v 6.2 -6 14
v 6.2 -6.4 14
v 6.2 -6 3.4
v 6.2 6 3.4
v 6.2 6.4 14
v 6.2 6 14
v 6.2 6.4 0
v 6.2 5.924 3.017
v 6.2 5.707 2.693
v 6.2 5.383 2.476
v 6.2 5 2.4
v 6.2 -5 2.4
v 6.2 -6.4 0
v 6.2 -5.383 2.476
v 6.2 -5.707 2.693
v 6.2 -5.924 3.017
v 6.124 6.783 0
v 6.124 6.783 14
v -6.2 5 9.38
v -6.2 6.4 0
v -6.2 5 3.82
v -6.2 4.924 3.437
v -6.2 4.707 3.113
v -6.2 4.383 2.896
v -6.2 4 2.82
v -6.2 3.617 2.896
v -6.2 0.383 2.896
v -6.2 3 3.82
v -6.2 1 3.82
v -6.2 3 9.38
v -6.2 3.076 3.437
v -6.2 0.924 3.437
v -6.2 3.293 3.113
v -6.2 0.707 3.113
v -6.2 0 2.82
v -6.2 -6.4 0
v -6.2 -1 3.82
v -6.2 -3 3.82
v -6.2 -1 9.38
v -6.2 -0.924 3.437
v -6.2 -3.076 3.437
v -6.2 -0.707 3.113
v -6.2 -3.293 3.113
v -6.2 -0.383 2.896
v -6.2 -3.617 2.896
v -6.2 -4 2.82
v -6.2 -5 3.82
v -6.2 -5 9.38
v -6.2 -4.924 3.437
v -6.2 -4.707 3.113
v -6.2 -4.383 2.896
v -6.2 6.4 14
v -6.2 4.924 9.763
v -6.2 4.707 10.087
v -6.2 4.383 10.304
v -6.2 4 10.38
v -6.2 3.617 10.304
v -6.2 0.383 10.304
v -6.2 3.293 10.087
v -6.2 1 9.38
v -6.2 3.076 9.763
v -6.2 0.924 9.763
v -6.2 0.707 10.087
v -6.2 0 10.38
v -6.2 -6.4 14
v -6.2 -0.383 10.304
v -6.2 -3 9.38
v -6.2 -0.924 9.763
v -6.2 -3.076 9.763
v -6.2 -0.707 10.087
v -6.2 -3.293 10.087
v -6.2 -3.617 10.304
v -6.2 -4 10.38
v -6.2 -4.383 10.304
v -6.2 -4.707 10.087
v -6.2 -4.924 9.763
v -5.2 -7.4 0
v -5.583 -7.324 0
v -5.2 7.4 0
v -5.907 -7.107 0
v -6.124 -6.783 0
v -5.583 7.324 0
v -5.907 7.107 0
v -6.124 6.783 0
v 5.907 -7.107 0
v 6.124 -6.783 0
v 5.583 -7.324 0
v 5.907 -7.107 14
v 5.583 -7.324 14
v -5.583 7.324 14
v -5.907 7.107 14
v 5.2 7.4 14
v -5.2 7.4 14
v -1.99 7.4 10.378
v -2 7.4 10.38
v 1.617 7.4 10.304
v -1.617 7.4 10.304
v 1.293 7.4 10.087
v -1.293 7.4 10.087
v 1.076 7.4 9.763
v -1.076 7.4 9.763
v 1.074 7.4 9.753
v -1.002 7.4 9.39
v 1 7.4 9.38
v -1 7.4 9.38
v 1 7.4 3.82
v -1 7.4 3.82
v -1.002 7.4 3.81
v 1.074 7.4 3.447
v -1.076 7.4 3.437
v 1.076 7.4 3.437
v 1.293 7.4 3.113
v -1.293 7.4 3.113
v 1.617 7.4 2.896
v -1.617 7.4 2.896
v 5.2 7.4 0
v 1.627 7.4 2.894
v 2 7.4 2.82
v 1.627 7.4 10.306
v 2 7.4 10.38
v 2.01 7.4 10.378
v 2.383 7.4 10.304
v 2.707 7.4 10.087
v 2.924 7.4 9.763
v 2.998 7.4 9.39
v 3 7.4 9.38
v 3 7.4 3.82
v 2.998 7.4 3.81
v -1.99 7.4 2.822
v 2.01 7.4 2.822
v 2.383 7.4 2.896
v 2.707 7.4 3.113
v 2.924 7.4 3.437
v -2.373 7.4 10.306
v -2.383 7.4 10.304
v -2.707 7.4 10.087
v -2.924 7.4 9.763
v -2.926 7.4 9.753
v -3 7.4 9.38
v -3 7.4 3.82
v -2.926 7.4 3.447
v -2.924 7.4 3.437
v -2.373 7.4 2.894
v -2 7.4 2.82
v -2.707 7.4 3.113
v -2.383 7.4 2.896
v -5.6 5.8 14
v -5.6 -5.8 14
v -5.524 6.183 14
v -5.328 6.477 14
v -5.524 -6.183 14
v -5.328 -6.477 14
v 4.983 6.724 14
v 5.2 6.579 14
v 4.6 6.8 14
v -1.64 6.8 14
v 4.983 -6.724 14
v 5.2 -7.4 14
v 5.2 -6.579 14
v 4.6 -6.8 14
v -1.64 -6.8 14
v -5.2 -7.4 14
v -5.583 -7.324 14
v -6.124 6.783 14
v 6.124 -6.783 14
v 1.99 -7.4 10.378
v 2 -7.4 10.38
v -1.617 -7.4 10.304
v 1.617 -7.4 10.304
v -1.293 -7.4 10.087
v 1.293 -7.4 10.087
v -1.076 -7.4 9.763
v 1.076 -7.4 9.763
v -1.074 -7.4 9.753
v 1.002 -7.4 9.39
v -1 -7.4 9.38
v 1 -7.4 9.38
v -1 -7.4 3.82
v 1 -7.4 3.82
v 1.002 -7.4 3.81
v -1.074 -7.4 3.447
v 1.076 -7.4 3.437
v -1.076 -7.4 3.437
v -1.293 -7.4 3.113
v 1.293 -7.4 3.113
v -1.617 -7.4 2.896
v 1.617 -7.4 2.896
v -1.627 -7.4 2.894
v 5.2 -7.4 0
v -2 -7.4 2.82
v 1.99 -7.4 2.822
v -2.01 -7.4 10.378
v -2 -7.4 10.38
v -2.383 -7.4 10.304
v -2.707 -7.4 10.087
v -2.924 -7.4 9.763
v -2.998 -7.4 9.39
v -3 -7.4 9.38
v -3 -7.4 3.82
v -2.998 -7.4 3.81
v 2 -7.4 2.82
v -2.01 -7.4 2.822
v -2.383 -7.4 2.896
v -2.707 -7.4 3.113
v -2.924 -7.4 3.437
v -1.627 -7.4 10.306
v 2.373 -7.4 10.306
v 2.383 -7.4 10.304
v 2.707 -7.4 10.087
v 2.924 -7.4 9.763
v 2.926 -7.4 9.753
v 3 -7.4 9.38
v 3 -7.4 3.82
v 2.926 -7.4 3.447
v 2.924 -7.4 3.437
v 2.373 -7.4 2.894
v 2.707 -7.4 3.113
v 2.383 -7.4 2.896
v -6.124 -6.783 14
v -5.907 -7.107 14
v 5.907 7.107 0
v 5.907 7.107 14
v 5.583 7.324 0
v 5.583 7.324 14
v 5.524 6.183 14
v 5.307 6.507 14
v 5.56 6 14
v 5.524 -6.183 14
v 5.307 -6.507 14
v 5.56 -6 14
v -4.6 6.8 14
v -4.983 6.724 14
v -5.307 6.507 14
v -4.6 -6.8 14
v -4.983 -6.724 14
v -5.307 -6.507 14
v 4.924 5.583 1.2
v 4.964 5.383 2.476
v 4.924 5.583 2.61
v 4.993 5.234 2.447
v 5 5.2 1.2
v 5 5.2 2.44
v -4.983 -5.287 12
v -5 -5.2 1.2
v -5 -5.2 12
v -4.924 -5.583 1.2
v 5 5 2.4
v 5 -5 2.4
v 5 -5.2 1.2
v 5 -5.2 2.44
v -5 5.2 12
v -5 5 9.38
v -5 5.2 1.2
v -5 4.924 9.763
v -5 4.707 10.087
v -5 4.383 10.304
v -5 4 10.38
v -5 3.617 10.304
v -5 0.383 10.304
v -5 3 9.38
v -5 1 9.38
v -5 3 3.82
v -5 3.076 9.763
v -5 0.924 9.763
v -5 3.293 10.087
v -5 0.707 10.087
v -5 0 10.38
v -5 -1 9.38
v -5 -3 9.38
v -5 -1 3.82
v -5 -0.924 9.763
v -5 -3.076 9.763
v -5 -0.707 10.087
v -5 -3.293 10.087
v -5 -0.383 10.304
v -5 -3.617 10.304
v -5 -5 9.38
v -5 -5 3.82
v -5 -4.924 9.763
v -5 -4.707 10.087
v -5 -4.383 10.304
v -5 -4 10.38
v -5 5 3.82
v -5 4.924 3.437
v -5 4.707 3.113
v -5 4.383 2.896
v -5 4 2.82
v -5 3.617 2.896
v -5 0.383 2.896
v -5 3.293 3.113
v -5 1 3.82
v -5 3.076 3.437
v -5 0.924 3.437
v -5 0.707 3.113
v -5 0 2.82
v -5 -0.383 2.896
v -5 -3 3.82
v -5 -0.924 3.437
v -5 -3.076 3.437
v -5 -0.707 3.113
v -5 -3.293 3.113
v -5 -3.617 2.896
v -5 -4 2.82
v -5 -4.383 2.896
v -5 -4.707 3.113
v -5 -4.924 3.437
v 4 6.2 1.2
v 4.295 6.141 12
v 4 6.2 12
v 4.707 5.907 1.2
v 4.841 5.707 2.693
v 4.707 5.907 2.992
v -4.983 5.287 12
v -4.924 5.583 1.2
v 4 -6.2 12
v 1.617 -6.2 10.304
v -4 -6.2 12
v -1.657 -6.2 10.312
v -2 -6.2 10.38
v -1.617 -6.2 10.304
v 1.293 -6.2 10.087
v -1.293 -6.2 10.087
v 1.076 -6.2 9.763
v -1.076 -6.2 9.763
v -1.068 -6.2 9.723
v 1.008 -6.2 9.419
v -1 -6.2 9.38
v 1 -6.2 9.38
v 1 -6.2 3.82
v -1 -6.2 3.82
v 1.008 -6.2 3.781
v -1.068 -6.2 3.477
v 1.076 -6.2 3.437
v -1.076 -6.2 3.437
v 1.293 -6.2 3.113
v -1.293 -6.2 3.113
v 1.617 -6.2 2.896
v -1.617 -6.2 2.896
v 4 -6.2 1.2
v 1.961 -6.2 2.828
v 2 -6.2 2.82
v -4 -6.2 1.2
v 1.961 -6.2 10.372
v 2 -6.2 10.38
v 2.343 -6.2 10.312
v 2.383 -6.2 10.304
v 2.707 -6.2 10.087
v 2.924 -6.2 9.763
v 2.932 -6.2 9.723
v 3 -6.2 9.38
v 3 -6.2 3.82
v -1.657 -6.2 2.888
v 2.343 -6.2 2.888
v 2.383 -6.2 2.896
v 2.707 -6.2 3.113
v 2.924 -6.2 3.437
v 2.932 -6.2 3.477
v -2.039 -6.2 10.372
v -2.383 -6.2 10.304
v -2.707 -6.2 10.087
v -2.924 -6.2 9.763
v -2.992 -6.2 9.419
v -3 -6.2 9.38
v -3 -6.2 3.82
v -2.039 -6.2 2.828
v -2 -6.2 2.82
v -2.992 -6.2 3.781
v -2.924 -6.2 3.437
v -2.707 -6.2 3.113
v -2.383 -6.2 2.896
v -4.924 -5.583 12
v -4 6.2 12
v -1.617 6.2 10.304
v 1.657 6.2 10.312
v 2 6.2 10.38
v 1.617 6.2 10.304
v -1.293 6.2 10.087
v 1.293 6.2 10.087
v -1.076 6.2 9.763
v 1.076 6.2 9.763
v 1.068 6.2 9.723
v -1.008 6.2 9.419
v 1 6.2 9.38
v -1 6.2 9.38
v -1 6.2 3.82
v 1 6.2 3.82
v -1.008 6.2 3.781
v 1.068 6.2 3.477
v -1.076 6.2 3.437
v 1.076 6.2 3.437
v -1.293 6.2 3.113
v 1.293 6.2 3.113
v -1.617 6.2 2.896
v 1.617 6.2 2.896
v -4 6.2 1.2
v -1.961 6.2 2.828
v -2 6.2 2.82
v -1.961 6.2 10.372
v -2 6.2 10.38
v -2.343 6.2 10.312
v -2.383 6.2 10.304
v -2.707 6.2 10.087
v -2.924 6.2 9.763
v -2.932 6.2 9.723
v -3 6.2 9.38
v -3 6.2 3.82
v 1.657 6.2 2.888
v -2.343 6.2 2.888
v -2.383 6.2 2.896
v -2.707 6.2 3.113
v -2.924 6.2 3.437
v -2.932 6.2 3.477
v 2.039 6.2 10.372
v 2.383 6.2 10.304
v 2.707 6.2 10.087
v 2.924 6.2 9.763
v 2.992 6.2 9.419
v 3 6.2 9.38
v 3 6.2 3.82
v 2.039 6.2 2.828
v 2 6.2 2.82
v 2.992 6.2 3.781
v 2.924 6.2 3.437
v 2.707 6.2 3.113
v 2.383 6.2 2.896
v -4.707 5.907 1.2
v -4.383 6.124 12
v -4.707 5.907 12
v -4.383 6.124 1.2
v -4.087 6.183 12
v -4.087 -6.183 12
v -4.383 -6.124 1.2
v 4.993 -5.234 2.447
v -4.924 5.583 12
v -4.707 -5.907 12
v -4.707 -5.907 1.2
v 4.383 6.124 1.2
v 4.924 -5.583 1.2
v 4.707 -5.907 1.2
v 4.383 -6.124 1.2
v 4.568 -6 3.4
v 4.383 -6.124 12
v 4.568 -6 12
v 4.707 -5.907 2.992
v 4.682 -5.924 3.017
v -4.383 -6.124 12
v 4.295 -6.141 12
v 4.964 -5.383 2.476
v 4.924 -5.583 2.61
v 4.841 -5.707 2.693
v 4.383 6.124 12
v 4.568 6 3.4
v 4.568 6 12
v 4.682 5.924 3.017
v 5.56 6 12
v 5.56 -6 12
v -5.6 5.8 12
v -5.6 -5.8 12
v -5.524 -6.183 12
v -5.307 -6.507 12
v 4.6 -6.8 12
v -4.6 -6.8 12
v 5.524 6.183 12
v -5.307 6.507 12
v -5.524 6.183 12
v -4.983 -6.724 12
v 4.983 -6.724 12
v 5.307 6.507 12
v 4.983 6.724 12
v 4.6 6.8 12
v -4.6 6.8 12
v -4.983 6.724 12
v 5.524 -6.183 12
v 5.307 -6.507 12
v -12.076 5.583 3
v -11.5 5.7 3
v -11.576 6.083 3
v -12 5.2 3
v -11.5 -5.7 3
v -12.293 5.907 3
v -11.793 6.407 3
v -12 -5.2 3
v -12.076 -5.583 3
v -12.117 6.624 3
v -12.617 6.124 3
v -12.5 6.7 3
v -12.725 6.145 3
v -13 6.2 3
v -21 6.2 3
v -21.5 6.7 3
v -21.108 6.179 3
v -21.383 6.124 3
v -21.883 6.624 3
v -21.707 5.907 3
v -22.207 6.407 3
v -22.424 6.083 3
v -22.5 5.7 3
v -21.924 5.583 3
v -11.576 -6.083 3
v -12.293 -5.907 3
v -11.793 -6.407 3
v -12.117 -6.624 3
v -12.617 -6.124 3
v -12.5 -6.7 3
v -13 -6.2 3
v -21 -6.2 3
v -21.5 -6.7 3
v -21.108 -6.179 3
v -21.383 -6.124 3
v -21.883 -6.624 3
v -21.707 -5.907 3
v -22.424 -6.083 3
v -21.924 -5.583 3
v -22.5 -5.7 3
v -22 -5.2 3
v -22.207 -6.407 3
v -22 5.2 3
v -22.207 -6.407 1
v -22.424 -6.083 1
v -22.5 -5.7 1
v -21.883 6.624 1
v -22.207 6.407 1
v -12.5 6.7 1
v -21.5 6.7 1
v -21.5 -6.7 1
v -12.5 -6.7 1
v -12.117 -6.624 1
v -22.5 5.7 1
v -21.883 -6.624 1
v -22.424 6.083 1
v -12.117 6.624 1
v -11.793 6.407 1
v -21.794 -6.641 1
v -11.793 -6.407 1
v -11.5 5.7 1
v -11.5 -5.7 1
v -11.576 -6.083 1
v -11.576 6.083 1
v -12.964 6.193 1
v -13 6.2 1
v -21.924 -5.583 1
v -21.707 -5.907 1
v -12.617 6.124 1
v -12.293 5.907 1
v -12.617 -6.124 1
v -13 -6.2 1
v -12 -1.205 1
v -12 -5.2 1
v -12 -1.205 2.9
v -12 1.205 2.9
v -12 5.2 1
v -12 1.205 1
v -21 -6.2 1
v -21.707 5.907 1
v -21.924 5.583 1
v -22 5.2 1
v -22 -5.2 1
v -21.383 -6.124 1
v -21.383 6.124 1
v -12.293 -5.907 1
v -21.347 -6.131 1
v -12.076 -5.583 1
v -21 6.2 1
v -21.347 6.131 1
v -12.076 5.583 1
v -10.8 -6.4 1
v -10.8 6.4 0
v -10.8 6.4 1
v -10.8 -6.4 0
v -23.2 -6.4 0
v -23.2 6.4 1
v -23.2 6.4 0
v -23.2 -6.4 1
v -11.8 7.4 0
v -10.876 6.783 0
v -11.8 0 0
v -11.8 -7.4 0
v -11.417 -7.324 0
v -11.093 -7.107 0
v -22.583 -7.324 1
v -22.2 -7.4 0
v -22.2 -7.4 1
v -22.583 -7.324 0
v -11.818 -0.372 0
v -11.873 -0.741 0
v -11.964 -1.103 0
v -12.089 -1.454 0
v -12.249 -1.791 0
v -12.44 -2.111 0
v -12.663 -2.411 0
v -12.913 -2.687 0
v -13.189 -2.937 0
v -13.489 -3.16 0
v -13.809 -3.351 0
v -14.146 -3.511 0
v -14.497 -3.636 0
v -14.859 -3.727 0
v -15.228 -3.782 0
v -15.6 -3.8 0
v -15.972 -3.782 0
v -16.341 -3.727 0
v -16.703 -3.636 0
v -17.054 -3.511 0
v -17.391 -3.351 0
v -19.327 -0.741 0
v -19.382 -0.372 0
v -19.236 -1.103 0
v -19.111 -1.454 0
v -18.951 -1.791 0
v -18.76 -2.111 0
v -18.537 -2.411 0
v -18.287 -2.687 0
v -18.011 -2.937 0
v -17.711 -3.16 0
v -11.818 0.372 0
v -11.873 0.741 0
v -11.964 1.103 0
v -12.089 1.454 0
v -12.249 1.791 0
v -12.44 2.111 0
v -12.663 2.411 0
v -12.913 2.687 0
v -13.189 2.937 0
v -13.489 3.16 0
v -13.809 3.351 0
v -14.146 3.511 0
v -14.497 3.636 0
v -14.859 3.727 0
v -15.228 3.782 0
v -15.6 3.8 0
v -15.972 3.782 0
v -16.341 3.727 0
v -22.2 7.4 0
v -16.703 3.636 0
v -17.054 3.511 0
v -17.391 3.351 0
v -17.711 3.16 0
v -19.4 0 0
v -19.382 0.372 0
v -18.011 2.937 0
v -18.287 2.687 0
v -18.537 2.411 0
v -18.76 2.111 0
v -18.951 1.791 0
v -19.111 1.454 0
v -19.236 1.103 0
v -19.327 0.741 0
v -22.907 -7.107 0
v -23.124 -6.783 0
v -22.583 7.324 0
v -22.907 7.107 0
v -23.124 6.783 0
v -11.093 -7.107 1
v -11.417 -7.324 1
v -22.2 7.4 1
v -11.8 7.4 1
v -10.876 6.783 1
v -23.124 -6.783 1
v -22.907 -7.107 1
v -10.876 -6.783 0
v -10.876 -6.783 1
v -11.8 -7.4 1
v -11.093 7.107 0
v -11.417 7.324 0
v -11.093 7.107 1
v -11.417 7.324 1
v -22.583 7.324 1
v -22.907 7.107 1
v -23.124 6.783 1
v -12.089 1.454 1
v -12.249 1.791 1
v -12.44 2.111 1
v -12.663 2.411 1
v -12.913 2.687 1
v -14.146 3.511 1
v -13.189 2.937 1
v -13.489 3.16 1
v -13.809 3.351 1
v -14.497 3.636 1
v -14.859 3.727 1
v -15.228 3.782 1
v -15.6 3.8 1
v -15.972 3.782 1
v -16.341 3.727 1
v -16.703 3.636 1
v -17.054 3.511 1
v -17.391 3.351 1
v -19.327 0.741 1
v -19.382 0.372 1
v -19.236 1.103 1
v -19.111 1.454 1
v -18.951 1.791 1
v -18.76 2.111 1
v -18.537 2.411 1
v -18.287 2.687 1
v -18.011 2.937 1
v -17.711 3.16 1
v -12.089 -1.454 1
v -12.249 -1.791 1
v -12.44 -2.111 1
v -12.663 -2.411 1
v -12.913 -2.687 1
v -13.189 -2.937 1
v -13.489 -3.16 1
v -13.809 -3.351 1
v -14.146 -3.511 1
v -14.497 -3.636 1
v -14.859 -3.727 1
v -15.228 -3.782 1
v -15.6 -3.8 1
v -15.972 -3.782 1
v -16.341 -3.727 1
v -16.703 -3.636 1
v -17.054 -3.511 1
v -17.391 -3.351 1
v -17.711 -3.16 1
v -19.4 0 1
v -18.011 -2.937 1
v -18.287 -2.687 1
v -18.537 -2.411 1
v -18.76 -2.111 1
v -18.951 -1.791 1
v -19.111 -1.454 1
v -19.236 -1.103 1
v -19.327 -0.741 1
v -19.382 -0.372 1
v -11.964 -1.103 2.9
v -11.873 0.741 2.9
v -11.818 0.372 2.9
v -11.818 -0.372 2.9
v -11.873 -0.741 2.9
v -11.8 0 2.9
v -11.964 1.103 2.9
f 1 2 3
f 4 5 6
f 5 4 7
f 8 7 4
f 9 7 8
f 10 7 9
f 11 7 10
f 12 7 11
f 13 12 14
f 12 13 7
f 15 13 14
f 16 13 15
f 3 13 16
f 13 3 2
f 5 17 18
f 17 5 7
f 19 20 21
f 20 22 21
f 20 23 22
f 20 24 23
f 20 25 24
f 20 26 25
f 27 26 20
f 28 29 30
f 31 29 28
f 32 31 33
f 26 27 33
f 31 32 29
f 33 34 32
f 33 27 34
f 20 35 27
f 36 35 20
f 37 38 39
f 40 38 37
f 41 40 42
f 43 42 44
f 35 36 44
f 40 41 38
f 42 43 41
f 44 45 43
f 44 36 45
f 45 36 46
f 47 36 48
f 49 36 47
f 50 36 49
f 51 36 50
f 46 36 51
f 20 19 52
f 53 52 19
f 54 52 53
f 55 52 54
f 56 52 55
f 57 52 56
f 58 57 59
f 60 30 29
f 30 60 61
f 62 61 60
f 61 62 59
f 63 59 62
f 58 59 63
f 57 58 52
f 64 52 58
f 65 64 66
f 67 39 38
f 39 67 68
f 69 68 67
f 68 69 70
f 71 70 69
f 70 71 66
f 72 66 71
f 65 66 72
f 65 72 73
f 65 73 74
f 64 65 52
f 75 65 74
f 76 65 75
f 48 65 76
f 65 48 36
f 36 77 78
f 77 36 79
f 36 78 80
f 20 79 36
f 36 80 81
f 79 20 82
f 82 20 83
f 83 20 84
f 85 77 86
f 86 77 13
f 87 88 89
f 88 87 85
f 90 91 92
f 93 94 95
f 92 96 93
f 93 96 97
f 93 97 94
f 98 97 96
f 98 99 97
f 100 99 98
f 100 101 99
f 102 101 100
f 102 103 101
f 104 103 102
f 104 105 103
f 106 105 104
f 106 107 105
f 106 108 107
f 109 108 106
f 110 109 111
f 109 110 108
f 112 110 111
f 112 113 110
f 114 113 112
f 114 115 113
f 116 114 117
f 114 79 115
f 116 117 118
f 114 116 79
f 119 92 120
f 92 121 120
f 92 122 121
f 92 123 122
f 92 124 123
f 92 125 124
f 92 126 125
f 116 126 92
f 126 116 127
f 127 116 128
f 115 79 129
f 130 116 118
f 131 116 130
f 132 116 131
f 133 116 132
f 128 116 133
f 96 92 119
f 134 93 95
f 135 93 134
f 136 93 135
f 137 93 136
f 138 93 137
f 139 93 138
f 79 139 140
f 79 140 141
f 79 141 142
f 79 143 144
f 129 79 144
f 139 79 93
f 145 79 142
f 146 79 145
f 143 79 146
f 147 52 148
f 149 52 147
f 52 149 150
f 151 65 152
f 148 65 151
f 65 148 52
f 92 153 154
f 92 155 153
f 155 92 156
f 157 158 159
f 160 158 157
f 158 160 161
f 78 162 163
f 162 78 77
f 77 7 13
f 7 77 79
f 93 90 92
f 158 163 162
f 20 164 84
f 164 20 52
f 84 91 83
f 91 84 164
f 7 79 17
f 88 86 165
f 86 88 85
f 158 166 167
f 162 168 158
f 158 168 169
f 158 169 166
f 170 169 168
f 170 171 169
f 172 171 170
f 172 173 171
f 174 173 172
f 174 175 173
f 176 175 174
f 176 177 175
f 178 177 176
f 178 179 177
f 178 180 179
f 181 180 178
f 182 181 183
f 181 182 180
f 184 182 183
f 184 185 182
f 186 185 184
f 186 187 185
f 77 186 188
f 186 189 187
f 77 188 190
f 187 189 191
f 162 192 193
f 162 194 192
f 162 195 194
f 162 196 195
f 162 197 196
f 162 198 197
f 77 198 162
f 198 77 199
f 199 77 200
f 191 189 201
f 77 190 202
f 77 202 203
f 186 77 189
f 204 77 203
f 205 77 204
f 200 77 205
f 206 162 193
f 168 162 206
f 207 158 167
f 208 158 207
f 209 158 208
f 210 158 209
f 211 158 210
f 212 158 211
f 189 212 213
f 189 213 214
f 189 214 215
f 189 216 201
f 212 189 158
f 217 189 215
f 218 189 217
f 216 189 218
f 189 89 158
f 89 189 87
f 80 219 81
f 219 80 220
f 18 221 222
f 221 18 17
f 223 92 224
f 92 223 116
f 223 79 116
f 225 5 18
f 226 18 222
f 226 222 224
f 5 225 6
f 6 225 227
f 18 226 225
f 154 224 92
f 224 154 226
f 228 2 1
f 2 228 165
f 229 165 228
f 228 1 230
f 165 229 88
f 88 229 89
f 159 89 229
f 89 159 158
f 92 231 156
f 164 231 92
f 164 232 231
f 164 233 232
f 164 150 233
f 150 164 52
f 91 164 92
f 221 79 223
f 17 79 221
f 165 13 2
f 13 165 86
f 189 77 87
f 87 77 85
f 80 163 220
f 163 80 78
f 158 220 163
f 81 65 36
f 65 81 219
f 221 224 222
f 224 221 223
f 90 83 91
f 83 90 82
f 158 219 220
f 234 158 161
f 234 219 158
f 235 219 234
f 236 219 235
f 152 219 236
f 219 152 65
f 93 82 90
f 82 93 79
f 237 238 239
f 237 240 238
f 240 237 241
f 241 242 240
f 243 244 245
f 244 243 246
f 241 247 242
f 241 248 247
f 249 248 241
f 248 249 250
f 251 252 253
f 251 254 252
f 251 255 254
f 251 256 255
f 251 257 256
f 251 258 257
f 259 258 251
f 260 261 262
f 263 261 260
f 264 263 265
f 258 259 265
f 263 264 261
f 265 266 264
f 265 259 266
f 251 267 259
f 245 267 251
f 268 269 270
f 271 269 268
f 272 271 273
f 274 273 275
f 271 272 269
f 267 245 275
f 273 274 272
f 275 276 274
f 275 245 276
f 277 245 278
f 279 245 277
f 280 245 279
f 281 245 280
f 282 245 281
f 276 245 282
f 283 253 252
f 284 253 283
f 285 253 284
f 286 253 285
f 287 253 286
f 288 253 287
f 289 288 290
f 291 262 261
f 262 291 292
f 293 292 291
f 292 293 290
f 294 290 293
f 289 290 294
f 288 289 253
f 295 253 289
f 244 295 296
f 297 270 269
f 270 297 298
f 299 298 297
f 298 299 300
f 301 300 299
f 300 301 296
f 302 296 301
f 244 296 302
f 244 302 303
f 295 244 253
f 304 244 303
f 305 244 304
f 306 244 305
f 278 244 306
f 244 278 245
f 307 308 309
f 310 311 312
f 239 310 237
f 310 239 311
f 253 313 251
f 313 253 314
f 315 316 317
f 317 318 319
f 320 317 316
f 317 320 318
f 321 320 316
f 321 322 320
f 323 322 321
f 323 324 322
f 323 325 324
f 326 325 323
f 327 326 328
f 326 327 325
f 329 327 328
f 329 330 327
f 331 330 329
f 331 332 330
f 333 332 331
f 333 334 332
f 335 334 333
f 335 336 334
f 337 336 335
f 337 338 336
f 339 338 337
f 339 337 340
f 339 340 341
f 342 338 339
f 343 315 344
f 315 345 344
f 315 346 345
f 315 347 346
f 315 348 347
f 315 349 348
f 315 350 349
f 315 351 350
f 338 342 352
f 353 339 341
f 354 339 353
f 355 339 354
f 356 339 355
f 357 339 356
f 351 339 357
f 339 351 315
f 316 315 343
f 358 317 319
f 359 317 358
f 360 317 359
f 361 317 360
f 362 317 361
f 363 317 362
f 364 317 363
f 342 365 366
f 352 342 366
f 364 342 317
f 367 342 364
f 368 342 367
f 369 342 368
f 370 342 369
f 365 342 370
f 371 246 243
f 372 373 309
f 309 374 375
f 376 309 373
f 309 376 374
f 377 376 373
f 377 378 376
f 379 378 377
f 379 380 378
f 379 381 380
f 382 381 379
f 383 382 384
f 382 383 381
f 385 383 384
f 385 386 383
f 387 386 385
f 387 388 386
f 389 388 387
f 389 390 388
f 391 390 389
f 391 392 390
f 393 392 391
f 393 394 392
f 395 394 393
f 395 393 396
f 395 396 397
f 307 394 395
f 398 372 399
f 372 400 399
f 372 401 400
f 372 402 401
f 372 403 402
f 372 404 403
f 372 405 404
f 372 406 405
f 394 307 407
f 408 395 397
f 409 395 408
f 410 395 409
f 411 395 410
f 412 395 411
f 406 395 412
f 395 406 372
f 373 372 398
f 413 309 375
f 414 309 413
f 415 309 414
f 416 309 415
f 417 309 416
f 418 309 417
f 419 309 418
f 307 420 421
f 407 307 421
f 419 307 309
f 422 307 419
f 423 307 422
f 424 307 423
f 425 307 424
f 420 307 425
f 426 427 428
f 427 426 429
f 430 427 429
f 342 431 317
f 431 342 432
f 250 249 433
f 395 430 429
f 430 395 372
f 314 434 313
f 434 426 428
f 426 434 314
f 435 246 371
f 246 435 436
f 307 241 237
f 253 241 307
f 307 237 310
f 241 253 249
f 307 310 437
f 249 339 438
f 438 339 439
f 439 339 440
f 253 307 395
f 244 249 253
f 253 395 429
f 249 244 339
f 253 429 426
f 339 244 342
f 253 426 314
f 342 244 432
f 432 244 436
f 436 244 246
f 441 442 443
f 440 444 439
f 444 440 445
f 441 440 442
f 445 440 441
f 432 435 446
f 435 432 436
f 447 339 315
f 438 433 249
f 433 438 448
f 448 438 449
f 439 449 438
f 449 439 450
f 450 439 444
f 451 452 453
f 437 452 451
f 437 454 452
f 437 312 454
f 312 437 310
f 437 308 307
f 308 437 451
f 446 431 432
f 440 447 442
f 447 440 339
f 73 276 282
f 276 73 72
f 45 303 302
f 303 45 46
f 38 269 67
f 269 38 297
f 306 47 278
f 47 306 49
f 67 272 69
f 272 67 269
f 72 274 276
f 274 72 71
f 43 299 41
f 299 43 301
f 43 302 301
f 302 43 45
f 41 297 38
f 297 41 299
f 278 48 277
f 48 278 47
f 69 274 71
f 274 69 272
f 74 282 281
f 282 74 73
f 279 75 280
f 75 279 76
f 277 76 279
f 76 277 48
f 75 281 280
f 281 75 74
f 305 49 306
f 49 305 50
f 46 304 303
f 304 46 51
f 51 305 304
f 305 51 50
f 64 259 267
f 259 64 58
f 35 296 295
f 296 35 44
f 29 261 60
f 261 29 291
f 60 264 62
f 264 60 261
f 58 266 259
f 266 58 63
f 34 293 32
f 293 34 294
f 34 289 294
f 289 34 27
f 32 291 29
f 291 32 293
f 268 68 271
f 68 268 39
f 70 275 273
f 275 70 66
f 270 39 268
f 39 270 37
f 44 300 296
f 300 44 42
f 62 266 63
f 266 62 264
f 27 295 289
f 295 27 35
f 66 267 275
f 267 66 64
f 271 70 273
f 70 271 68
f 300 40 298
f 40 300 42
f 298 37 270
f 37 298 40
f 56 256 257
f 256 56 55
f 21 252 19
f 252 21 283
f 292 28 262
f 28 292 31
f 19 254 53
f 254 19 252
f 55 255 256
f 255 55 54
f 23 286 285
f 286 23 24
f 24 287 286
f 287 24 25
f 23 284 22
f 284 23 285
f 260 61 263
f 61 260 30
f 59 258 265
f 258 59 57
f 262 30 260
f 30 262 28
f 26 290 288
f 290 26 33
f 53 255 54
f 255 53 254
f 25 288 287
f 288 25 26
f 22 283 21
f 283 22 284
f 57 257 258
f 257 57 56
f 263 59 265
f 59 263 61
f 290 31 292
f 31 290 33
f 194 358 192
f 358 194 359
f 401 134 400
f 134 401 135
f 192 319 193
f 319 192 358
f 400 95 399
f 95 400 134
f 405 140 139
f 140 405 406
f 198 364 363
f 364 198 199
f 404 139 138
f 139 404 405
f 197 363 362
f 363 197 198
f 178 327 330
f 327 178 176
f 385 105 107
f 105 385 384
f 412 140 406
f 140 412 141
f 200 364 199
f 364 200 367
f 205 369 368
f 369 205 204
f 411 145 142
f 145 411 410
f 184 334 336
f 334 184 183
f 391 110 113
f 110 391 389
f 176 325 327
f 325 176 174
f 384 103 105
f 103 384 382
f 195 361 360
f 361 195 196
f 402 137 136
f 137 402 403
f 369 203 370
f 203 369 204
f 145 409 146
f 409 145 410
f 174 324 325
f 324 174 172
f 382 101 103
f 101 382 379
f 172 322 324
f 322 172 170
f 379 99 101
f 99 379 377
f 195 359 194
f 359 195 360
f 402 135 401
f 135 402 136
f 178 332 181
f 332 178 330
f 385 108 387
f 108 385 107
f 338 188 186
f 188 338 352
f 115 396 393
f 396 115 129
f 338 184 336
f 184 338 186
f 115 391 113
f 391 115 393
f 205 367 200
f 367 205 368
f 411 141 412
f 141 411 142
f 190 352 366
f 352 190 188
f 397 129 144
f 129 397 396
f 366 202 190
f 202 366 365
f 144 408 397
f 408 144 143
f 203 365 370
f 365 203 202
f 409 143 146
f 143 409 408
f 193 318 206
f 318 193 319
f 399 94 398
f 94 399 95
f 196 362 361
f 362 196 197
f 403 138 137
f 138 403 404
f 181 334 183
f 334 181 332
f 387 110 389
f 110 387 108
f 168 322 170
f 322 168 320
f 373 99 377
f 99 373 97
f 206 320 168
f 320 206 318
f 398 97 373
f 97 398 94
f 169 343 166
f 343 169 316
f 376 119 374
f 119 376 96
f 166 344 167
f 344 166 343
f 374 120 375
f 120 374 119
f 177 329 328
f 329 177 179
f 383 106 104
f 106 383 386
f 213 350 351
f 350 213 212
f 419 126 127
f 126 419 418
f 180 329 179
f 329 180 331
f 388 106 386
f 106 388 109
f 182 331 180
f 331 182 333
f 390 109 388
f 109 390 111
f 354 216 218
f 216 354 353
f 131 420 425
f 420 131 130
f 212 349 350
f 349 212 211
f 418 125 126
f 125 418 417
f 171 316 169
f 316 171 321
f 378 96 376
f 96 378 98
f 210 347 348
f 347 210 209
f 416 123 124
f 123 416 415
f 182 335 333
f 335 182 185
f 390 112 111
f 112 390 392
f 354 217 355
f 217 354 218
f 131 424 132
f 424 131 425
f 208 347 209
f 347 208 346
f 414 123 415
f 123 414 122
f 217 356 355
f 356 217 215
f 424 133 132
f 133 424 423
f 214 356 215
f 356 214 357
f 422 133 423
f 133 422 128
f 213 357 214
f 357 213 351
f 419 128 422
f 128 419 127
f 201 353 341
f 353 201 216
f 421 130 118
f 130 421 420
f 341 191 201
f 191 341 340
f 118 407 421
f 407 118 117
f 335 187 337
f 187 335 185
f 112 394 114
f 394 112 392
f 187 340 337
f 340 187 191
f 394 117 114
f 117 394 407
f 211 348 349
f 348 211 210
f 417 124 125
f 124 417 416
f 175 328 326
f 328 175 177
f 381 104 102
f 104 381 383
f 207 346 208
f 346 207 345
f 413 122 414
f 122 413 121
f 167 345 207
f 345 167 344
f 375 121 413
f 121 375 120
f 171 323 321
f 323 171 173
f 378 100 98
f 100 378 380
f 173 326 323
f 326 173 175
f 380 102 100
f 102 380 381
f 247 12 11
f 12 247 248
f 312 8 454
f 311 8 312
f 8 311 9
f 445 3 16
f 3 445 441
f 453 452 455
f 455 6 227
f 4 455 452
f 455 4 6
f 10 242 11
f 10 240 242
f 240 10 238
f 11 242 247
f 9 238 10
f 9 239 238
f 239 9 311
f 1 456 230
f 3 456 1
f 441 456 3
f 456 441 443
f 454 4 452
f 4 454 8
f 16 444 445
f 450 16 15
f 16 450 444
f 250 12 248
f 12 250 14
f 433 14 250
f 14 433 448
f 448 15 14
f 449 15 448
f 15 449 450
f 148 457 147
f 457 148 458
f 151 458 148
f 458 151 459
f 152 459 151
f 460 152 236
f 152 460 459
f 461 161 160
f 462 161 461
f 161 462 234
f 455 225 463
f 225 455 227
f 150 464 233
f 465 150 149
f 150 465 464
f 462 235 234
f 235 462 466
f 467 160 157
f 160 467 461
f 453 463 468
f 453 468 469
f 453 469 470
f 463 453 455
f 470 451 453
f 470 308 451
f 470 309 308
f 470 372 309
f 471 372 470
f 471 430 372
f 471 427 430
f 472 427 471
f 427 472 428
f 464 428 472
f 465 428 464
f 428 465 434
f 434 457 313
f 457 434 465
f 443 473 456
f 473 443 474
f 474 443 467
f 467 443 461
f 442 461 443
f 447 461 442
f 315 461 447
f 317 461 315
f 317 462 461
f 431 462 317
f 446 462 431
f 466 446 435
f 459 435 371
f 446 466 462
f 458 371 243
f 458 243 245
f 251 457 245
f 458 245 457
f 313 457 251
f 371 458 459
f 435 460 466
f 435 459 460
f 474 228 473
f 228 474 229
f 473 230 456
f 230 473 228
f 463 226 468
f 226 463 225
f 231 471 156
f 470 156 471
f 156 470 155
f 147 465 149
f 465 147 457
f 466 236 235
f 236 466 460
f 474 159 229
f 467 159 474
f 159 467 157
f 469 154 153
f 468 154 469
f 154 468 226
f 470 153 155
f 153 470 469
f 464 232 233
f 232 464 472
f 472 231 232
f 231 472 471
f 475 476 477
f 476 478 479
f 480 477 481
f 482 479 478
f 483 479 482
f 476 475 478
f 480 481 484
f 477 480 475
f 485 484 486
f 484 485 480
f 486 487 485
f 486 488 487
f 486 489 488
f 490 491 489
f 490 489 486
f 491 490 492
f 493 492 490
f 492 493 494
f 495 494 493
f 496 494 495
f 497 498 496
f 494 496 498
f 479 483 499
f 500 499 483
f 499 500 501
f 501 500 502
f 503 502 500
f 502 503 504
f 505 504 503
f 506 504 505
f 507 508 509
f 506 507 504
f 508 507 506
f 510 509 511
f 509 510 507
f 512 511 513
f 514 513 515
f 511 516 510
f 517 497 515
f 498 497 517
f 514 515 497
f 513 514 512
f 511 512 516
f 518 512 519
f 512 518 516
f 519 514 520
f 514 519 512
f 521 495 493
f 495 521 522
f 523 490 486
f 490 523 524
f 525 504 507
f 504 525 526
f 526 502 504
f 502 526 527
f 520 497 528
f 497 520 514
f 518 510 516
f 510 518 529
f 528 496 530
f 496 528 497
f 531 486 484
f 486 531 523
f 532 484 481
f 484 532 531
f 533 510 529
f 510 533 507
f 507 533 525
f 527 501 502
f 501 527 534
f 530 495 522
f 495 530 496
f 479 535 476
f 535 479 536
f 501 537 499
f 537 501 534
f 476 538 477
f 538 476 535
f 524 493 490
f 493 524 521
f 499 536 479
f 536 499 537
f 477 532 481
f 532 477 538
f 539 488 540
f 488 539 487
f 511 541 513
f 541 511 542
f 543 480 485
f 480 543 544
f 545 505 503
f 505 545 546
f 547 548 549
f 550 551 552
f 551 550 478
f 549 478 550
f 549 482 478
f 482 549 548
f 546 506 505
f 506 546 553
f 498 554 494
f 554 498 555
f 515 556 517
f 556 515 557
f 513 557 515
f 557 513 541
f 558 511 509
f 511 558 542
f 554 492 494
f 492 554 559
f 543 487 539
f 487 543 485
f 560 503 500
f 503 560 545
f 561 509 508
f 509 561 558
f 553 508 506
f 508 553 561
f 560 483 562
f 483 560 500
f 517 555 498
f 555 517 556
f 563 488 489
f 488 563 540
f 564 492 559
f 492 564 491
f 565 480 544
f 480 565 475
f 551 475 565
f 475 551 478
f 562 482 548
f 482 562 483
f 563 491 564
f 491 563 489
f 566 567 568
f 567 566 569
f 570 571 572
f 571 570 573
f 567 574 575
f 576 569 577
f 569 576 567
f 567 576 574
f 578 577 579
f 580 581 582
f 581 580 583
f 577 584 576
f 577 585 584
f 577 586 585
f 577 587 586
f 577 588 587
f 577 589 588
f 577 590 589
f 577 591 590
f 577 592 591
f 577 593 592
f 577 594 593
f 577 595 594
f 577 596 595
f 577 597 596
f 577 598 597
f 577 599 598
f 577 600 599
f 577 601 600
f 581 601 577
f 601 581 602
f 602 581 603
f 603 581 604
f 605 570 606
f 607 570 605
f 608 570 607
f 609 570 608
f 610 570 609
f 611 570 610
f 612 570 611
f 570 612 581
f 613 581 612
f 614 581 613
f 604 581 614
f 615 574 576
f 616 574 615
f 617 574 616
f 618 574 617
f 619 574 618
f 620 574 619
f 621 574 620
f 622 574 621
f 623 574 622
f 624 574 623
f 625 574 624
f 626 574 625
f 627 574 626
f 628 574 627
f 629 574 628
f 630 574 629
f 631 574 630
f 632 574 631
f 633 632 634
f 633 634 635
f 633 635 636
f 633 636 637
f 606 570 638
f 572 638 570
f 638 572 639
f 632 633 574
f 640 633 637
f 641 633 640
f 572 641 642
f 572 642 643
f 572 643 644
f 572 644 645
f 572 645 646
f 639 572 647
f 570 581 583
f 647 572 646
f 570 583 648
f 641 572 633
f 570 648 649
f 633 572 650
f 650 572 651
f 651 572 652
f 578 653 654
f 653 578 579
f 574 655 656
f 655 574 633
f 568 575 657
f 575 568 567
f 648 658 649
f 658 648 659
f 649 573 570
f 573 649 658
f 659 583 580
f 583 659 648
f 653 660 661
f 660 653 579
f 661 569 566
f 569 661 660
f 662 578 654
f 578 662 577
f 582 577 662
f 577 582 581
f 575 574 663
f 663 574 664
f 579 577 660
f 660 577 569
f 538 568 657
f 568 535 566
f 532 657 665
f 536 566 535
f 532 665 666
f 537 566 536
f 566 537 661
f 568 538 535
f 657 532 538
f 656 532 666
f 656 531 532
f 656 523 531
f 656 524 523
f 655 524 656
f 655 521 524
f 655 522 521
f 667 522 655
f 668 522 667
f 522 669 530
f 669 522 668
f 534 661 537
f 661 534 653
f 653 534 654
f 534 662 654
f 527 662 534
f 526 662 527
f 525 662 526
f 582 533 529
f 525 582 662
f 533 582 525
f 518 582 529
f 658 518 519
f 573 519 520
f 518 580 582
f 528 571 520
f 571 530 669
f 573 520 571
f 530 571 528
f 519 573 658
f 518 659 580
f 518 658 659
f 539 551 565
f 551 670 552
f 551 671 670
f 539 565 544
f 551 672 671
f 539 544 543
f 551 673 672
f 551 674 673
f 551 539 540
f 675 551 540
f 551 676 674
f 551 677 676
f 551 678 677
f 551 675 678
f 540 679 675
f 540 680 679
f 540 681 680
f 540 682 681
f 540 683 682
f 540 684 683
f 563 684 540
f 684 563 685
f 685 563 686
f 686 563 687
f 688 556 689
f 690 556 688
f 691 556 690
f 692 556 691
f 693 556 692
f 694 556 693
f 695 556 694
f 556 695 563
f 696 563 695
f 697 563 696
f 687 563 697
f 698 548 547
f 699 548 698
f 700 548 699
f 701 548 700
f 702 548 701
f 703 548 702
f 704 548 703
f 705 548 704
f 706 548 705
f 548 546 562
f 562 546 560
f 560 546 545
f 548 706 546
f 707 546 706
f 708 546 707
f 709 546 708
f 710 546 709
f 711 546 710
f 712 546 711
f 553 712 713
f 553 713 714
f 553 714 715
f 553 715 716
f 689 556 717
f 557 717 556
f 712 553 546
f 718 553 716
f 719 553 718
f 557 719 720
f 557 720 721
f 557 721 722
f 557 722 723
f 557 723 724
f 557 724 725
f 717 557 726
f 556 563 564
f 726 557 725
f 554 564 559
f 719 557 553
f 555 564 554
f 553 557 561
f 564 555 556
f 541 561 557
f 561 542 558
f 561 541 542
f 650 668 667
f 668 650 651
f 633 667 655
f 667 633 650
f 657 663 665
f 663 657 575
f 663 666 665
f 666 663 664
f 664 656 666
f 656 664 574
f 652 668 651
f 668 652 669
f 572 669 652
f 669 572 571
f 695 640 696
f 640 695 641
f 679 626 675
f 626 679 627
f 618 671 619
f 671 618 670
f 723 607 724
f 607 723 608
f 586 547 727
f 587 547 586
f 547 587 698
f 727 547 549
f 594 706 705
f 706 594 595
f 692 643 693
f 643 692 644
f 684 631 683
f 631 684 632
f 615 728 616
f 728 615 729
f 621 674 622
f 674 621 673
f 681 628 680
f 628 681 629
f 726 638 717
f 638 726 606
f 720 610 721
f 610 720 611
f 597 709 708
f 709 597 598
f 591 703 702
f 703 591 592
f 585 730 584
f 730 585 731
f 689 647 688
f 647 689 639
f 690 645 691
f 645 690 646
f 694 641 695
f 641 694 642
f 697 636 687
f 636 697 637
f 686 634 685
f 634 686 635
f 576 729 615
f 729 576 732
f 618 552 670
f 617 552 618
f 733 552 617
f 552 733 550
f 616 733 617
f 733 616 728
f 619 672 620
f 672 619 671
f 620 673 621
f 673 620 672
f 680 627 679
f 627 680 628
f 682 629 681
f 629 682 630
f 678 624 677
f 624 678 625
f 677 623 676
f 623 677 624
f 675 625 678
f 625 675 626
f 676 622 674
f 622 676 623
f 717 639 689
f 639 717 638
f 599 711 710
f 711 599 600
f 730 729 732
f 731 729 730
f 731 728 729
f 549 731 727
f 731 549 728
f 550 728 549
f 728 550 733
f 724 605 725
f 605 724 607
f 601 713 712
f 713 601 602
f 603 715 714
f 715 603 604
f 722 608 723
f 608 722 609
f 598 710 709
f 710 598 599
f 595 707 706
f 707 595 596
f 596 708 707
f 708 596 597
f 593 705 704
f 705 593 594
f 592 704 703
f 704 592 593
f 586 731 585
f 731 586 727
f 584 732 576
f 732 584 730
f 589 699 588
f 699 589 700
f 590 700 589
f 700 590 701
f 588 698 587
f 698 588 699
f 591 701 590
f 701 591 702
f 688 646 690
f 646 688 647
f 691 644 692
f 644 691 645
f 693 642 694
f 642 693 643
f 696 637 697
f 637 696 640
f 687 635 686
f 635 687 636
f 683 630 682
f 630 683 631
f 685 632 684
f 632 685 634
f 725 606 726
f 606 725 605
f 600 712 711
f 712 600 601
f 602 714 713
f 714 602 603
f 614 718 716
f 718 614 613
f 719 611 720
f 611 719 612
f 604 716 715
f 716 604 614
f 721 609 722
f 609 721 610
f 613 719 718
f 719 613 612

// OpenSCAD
//
// Adafruit Breadboard Friendly 3.5mm Stereo Headphone Jack Enclosure
//
// by Yasuhiro Wabiko
//
// This work is licensed under a Creative Commons Attribution 4.0 International License.
// https://creativecommons.org/licenses/by/4.0/
//
// See
//    https://github.com/ywabiko/3d/blob/master/Speaker/README.md
// for build instructions.
//

use <prim.scad>

// printer error related tweaks
//
// Recommended values:
//   - For Wood PLA, LID_ERROR = 0.8, HOLD_ERROR=0.
//   - For PLA, LID_ERROR= 0.0. HOLD_ERROR=0.4.
LID_ERROR  = 0.2; // if the lid does not fit, make this larger.
//HOLD_ERROR = 0.0; // if the board holder is too loose, make this larger.


// inner size of the box.
// typically, (x,y) = board size, z depends on how much space you need for cabling.
//
size_x = 12+0.8;
size_y = 12+0.4;
size_z = 10;
size_x2 = 7.5; // from back side edge to the front black legs

// shell dimensions
shell_thick = 0.6;       // thickness (of inner shell for 2-layer shell)
shell_outer_thick = 0.6; // thickness of outer shell (for 2-layer shell)
shell_outer_x_thick = 1.2; // thickness of outer shell (for 2-layer shell)
shell_r     = 1; // radius in minkowski transform

// board parameters
board_thick      = 7;      // board thickness, typically 2mm
arm_thick        = 1.5;    // arm thickness (overhang)
arm_up_z         = 2;      // arm upper part height (in z-axis)
arm_low_z        = 3;      // arm upper part height (in z-axis)
arm_side_low_z   = size_z; // arm left/right part height (in z-axis)
arm_center_up_y  = size_y; // arm (center) upper part height
arm_center_low_y = size_y; // arm (center) lower part height
arm_center_thick = 12;
arm_left_up_x    = size_x; // arm (left) upper part height
arm_left_low_x   = size_x; // arm (left) lower part height
arm_right_up_x   = size_x;      // arm (right) upper part height
arm_right_low_x  = size_x; // arm (right) lower part height
arm_r            = 0.4;    // radius in minkowski transform

pins_hole_y      = 12;

// lid dimensions
lid_outer_x = 1;
lid_inner_x = 2;

// misc design parameters
spfn_small  = 8;
spfn_medium = 16;
spfn_large  = 64;
lid_inner_thick = 2;

// internal parameters
WELDING = 0.6;
SHELL_LID_DIST = 2; // distance between shell and lid when print_ready_layout

// render target; this is meant to be overriden by Makefile
TARGET="default";

//
// top level logic
//
audiojack_main();

module audiojack_main(target=TARGET){

    if (target == "default") {
        audiojack(with_print=1, with_upsidedown=1);
    }

    if (target == "unit") {
        audiojack_unit(40, with_lid=0);
    }

    if (target == "body_test") {
        audiojack(with_lid=0);
    }

    if (target == "lid_test") {
        audiojack_unit_lid_only(with_print=1);
    }
}

// [Public]
// Minimum size enclosure.
//
// with_lid  = { 1: render the lid, 0: does not render the lid }
// with_vent = { 1: with ventilation slits, 0: without ventilation slits }
// with_print = { 1: print layout (models are rotated to be printable), 0: edit layout (no rotation) }
// with_shell = { 1: render the shell (outermost enclosure that matches the requested dimension). 0: does not render the shell.}
// with_open_roof = { 1: make a big opening on the 'roof' part (for debugging), 0: do not do that }
// with_upsidedown = { 1: rotate up-side-down (for compo scenario), 0: do not do that }
module audiojack(with_lid=1, with_vent=1, with_print=1, with_shell=1, with_open_roof=0, with_upsidedown=0){

    if (with_print) {
        rotate([0,-90,0]) {
            translate([size_x/2+shell_outer_thick, 0, 0]) {
                audiojack_body(with_vent=with_vent, with_shell=with_shell, with_open_roof=with_open_roof);
            }
        }
        if (with_lid) {
            translate([-(size_z*1.5+SHELL_LID_DIST),0,0])
                rotate([0,90,0])
                audiojack_lid(size_x, size_y, size_z, shell_r, shell_thick, shell_outer_thick,
                             spfn_small, spfn_medium, spfn_large);
        }
    } else {
        rr = 180*with_upsidedown;
//        translate([size_x/2+shell_outer_thick, -size_y/2, 0]) {
        translate([0, 0, 0]) {
            rotate([rr,0,0]) {
                audiojack_body(with_vent=with_vent, with_shell=with_shell, with_open_roof=with_open_roof);
            }
        }
        if (with_lid) {
            translate([SHELL_LID_DIST+10, 0, 0]) {
                rotate([rr,0,0]) {
                    audiojack_lid(size_x, size_y, size_z, shell_r, shell_thick, shell_outer_thick,
                                  spfn_small, spfn_medium, spfn_large);
                }
            }
        }
        }
}

// [Public]
// Variable size enclosure with support structure. Typically to be embededd in another project.
// 
// ox, oy, oz = dimension (this has to be equals to or larger than (size_x, size_y, size_z).
// with_lid  = { 1: render the lid, 0: does not render the lid }
// with_vent = { 1: with ventilation slits, 0: without ventilation slits }
// with_shell = { 1: render the shell (outermost enclosure that matches the requested dimension). 0: does not render the shell.}
// with_open_roof = { 1: make a big opening on the 'roof' part (for debugging), 0: do not do that }
module audiojack_unit(ox=0, with_lid=0, with_vent=0, with_shell=1, with_open_roof=0) {

    // support structure dimensions
    sx = ox - size_x - shell_thick;
//    sy = oy - size_y - shell_thick*2;
//    sz = oz - size_z - shell_thick*2;
    
    translate([-ox/2, 0, 0])
    rotate([180, 0, 180]) {
        translate([-size_x/2+ox/2,0,0]) {
            difference(){
                audiojack_shell_single_layer(size_x, size_y, size_z, size_x2, shell_r, shell_thick, shell_outer_thick,
                                             spfn_small, spfn_medium, spfn_large, with_lid=with_lid, with_vent=with_vent, with_shell=with_shell, with_open_roof=with_open_roof);
                audiojack_shell_negative_volume_single_layer(size_x, size_y, size_z, size_x2, shell_r, shell_thick, shell_outer_thick,
                                                             spfn_small, spfn_medium, spfn_large, with_lid=with_lid, with_vent=with_vent);


            }
            // support structure
            translate([-size_x/2-shell_thick-sx/2,0,0]) {
                #prim_round_xplate(sx, size_y+shell_thick*2, size_z+shell_thick*2, shell_r, spfn_medium);
            }
        }
    }
}

// [Public]
// Variable size enclosure with support structure. Typically to be embededd in another project.
// 
// ox, oy, oz = dimension (this has to be equals to or larger than (size_x, size_y, size_z).
// with_lid  = { 1: render the lid, 0: does not render the lid }
module audiojack_unit_lid_only(ox=0, with_lid=0, with_inner=1) {
    // support structure dimensions
    sx = ox - size_x - shell_thick;
//    sy = oy - size_y - shell_thick*2;
//    sz = oz - size_z - shell_thick*2;
    translate([lid_outer_x, 0, 0])
    rotate([0,0,180]) {
        difference() {
            audiojack_lid_body_single_layer(size_x, size_y, size_z, shell_r, shell_thick, lid_inner_x, lid_outer_x,
                                            spfn_small, spfn_medium, spfn_large, with_inner);
            translate([-lid_outer_x+WELDING,0,0]) // centering to match with positive volume
                audiojack_lid_negative_volume(size_x, size_y, size_z, shell_r, shell_thick, shell_outer_thick,
                                            spfn_small, spfn_medium, spfn_large);
        }
    }
}

// [Public]
// Negative volume of lid that can be shared with the outer model (useful when you are embedding this model in another project).
module audiojack_unit_lid_negative_volume(ox=0) {
    sx = ox - size_x - shell_thick;
    rotate([0, 0, 180]) {
        translate([-lid_outer_x+WELDING,0,0]) // centering to match with positive volume
            audiojack_lid_negative_volume(size_x, size_y, size_z, shell_r, shell_thick, shell_outer_thick,
                                          spfn_small, spfn_medium, spfn_large);
    }
}


// -------------------------
// Private Modules
// -------------------------

module audiojack_body(sx=size_x, sy=size_y, sz=size_z, wr=shell_r, wt=shell_thick,
                      wot=shell_outer_thick, woxt=shell_outer_x_thick, lix=lid_inner_x,
                      fns=spfn_small, fnm=spfn_medium, fnl=spfn_large, with_shell=1, with_vent=1, with_open_roof=0){

    if (with_shell){
        difference(){
            audiojack_shell(sx=sx, sy=sy, sz=sz, wr=wr, wt=wt, wot=wot, woxt=woxt,
                            fns=fns, fnm=fnm, fnl=fnl, with_open_roof=with_open_roof);
            audiojack_shell_negative_volume(sx=sx, sy=sy, sz=sz, wr=wr, wt=wt, wot=wot, woxt=woxt, lix=lix,
                                            fns=fns, fnm=fnm, fnl=fnl, with_vent=with_vent);
        }
    }
}


// single layer type shell
// (for unit mode only that is meant to be embedded in other project like Compo.)
//
module audiojack_shell_single_layer(sx, sy, sz, sx2, wr, wt, wot, 
                      fns, fnm, fnl, with_lid=0, with_vent=0, with_shell=1, with_open_roof=0){

    dx = with_lid*wt; // to support lid inner part
    dx0 = (1-with_lid)*wt/2;
    if (with_shell) {
        // inner shell
        translate([-dx0,0,0])
            difference() {
                prim_round_xplate(sx+wt+dx, sy+wt*2, sz+wt*2, wr, fnm);
            translate([wt, 0, 0])
                #prim_round_xplate(sx+wt+dx, sy, sz+10*with_open_roof, 0.1, fnm);
        }
    }
}


module audiojack_shell_negative_volume_single_layer(sx, sy, sz, sx2, wr, wt, wot,
                                      fns, fnm, fnl, with_lid=0, with_vent=0){
    // hole at the bottom of shell (single layer)
    translate([wt+arm_thick, 0, -sz/2]) {
        #prim_round_zplate0(sx+wt, 11, wt*2+WELDING, 1, fnm);
    }

    // from bottom slit to accomodate front black legs
    w = sx-sx2;
    translate([-sx/2+wt+sx2+w/2, 0, -sz/2]) {
        #prim_round_zplate0(w, sy+wt*2+WELDING, wt*2+WELDING, 1, fnm);
    }

    if (with_vent){
        for (i=[-2:1:2]) {
            translate([0, i*4, 0]) {
                #prim_round_zplate0(sx-4, 2, sz+wt*2+wot*2+2, 1, fnm);
            }
        }
        for (i=[0.5, -0.5]) {
            translate([0, 0, i*4]) {
                prim_round_yplate0(sx-4, sy+wt+wot+2, 2, 1, fnm);
            }
        }
//        translate([-sx/2-wt, 0, 0])
//          #prim_round_yplate0(wt*2+4, 16, 2.5, 1, fnm);
    }
    
}

// normal type shell (2-layer)
//   - inner shell layer to hold the audio jack.
//   - outer shell layer to hold the lid.
// center = center of outer dimension
//    i.e. ((sx+woxt)/2, (sy+wt*2+wot*2)/2, (sz+wt*2+wot*2)/2)
module audiojack_shell(sx, sy, sz, wr, wt, wot, woxt,
                      fns, fnm, fnl, with_open_roof=0){
    // outer shell
    translate([0, 0, 0]) {
        difference() {
            prim_round_xplate0(sx+woxt, sy+wt*2+wot*2, sz+wt*2+wot*2, wr, fnm);
            // remove space for inner stuffing
            translate([woxt, 0, 0]) {
                prim_round_xplate0(sx+woxt, sy, sz+10*with_open_roof, wr, fnm);
            }
        }
    }
}

module audiojack_shell_negative_volume(sx, sy, sz, wr, wt, wot, woxt, lix,
                                      fns, fnm, fnl, with_vent=1){
    // hole at the bottom of shell
    translate([wt+arm_thick, 0, -sz/2])
        prim_round_zplate0(sx+wt, pins_hole_y, wt*2+wot*2+WELDING, 1, fnm);

    // for overlapping part with lid_inner
    translate([(sx+wot)/2+WELDING/2, 0, 0])
        #prim_round_xplate(lix*2, sy+wot*2, sz+wot*2, wr, fnm);

    if (with_vent){
        vx = (sx-lix)*0.7;
        for (i=[-1:1:1]) {
            translate([woxt/2-lix/2, i*4, 0])
                #prim_round_zplate0(vx, 2, sz+wt+wot+2, 1, fnm);
                }
        for (i=[0.5, -0.5]) {
            translate([woxt/2-lix/2, 0, i*4])
            #prim_round_yplate0(vx, sy+wt+wot+2, 2, 1, fnm);
        }
//        translate([-sx/2-wt, 0, 0])
//          #prim_round_yplate0(wt*2+4, 16, 2.5, 1, fnm);
    }
    
}


module audiojack_lid(sx, sy, sz, wr, wt, wot,
                      fns, fnm, fnl){
    translate([-lid_outer_x, 0, 0])
    difference(){
        audiojack_lid_body(sx, sy, sz, wr, wt, wot,
                          fns, fnm, fnl);
        translate([lid_outer_x/2,0,0]) // centering to match with positive volume
            audiojack_lid_negative_volume(sx, sy, sz, wr, wt, wot,
                                         fns, fnm, fnl);
    }
}

module audiojack_lid_body(sx, sy, sz, wr, wt, wot,
                      fns, fnm, fnl){
    // inner
    translate([-lid_inner_x/2+WELDING/2,0,0])
    difference(){
        prim_round_xplate(lid_inner_x+WELDING, sy-LID_ERROR+wot*2, sz-LID_ERROR+wot*2, wr, fnm);
        translate([-WELDING, 0, 0])
            prim_round_xplate(lid_inner_x+WELDING*2, sy-wt*2+wot*2, sz-wt*2+wot*2, wr, fnm);
    }    

    // outer
    translate([lid_outer_x/2,0,0])
        prim_round_xplate(lid_outer_x, sy+wt*2+wot*2, sz+wt*2+wot*2, wr, fnm);

}

module audiojack_lid_body_single_layer(sx, sy, sz, wr, wt, lix, lox,
                      fns, fnm, fnl, with_inner=1){
    // inner
    if (with_inner) {
        translate([-lix/2,0,0])
            difference() {
            prim_round_xplate(lix, sy-LID_ERROR-wt*2, sz-LID_ERROR-wt*2, wr, fnm);
            translate([-WELDING, 0, 0]) {
                prim_round_xplate(lix+WELDING*2, sy-wt*2-wt*2, sz-wt*2-wt*2, wr, fnm);
            }
        }
    }

    // outer
    translate([lox/2,0,0])
        prim_round_xplate(lox, sy+wt*2, sz+wt*2, wr, fnm);

}

module audiojack_lid_negative_volume(sx, sy, sz, wr, wt, wot,
                                    fns, fnm, fnl){
    hole_r = 3.6;
    dz = (sz-hole_r*2)/2; // aligh to top edge of inner volume
    // audiojack in 
    translate([0, 0, dz])
        rotate([0, 90, 0])
            #cylinder(r=3.8, h=wt*8, $fn=fnl, center=true);
 }
